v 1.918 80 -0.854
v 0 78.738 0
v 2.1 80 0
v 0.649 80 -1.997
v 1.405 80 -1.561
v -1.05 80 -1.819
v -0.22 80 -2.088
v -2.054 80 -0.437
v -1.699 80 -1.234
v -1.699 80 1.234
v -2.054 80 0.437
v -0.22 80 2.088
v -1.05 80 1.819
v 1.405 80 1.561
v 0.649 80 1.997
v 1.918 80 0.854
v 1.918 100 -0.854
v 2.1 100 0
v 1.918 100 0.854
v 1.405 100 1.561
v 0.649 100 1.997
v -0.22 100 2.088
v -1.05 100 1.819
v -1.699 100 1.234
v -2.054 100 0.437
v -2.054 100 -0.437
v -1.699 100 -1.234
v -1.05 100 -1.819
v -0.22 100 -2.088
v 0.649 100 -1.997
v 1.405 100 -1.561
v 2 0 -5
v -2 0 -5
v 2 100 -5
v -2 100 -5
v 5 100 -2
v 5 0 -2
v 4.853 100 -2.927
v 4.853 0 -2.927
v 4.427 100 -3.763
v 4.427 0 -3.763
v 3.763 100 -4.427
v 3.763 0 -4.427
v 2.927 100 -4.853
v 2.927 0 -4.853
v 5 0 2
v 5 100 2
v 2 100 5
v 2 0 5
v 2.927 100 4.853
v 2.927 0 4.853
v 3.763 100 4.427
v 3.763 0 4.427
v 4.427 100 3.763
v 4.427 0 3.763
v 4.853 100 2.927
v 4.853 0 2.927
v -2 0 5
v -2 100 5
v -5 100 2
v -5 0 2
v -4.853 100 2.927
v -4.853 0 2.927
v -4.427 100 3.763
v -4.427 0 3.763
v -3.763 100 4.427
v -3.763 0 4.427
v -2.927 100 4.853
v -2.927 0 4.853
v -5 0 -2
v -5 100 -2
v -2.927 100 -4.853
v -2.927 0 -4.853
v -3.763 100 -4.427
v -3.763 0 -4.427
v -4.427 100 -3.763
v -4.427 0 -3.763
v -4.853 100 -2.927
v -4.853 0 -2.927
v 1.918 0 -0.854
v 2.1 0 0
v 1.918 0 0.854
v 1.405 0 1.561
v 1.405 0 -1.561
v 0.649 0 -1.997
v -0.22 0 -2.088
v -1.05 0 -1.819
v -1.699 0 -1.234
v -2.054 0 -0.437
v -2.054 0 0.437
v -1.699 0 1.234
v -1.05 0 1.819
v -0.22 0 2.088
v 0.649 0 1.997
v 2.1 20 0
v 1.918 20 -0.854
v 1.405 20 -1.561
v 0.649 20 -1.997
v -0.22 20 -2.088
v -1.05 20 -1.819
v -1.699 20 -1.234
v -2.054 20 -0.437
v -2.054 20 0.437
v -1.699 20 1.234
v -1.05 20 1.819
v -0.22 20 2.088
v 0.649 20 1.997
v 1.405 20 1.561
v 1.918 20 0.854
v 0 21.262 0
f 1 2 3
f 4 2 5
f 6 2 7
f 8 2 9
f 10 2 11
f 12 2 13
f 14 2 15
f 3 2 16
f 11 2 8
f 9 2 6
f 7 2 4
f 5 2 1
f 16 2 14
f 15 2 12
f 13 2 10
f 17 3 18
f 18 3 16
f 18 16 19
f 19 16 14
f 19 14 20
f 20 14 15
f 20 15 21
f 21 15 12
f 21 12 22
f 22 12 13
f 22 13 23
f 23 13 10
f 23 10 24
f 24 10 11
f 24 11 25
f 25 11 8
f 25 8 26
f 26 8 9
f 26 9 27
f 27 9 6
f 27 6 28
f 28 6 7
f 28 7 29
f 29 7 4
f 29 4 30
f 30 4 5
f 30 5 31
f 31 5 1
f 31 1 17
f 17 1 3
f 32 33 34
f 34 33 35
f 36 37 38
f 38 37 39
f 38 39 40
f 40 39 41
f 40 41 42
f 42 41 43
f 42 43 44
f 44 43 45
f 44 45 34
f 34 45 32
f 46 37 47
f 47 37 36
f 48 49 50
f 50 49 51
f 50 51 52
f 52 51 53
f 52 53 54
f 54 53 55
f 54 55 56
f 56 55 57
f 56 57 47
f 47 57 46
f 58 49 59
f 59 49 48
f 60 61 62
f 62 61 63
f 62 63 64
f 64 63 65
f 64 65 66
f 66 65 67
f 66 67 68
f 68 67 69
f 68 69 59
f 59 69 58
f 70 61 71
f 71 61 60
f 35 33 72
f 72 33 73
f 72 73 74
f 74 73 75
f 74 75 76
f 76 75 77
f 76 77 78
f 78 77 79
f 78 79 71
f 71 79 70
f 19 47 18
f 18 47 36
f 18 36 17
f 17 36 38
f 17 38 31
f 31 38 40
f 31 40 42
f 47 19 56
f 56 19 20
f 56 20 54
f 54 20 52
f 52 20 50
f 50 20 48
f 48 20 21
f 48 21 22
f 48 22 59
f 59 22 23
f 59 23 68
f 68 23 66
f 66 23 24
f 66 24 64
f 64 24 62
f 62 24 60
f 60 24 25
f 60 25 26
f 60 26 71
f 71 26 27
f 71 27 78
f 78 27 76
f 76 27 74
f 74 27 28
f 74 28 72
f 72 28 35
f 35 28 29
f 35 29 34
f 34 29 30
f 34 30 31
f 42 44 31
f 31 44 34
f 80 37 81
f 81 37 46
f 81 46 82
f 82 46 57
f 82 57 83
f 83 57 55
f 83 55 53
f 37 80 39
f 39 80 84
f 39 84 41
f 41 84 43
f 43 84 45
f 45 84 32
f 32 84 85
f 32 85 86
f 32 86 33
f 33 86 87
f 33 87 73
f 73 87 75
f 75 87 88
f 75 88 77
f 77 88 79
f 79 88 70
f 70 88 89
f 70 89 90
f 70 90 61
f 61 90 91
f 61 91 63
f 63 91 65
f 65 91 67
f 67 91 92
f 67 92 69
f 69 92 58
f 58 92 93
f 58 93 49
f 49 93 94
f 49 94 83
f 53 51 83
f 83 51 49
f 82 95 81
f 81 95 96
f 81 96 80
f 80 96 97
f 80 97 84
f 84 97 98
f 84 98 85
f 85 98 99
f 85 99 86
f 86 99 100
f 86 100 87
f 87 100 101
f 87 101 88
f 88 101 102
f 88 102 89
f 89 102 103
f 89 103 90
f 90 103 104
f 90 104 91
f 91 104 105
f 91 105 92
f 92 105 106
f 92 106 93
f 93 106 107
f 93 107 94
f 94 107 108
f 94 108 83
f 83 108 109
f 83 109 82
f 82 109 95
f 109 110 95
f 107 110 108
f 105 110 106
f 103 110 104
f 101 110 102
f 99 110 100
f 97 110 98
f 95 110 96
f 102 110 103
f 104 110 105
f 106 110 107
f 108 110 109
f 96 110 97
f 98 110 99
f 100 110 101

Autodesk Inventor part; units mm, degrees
ref_plane "YZ Plane" through (0, 0, 0) normal (1, 0, 0) x (0, 1, 0)
ref_plane "XZ Plane" through (0, 0, 0) normal (0, 1, 0) x (-1, 0, 0)
ref_plane "XY Plane" through (0, 0, 0) normal (0, 0, 1) x (1, 0, 0)
sketch "Boceto1" plane through (0, 0, 0) normal (0, 1, 0) x (-1, 0, 0)
  line L0 (-2, -5) -> (2, -5)
  line L1 (5, -2) -> (5, 2)
  line L2 (2, 5) -> (-2, 5)
  line L3 (-5, 2) -> (-5, -2)
  line L4 (-5, -5) -> (5, 5) construction
  line L5 (5, -5) -> (-5, 5) construction
  arc A0 (5, 2) -> (2, 5) centre (2, 2) ccw
  arc A1 (2, -5) -> (5, -2) centre (2, -2) ccw
  arc A2 (-5, -2) -> (-2, -5) centre (-2, -2) ccw
  arc A3 (-2, 5) -> (-5, 2) centre (-2, 2) ccw
  point P0 (0, 0)
  dimension "d0" = 10
  dimension "d1" = 10
  dimension "d2" = 3
extrude "Extrusión1" add sketch "Boceto1" along normal blind 100
sketch "Boceto2" plane through (0, 100, 0) normal (0, 1, 0) x (1, 0, 0)
  line L0 (2, 5) -> (-2, 5) projected
  line L1 (5, -2) -> (5, 2) projected
  point P0 (0, 0)
  point P1 (0, 0)
  dimension "d5" = 5
  dimension "d6" = 5
hole "Agujero1" at (0, 100, 0) direction (0, -1, 0) diameter 4.2 depth 20 tip angle 118
sketch "Boceto3" plane through (0, 0, 0) normal (0, -1, 0) x (1, 0, 0)
  line L0 (5, 2) -> (5, -2) projected
  line L1 (-2, 5) -> (2, 5) projected
  point P0 (0, 0)
  point P1 (0, 0)
  dimension "d14" = 5
  dimension "d15" = 5
hole "Agujero2" at (0, 0, 0) direction (0, 1, 0) diameter 4.2 depth 20 tip angle 118
properties part number "Columna"
